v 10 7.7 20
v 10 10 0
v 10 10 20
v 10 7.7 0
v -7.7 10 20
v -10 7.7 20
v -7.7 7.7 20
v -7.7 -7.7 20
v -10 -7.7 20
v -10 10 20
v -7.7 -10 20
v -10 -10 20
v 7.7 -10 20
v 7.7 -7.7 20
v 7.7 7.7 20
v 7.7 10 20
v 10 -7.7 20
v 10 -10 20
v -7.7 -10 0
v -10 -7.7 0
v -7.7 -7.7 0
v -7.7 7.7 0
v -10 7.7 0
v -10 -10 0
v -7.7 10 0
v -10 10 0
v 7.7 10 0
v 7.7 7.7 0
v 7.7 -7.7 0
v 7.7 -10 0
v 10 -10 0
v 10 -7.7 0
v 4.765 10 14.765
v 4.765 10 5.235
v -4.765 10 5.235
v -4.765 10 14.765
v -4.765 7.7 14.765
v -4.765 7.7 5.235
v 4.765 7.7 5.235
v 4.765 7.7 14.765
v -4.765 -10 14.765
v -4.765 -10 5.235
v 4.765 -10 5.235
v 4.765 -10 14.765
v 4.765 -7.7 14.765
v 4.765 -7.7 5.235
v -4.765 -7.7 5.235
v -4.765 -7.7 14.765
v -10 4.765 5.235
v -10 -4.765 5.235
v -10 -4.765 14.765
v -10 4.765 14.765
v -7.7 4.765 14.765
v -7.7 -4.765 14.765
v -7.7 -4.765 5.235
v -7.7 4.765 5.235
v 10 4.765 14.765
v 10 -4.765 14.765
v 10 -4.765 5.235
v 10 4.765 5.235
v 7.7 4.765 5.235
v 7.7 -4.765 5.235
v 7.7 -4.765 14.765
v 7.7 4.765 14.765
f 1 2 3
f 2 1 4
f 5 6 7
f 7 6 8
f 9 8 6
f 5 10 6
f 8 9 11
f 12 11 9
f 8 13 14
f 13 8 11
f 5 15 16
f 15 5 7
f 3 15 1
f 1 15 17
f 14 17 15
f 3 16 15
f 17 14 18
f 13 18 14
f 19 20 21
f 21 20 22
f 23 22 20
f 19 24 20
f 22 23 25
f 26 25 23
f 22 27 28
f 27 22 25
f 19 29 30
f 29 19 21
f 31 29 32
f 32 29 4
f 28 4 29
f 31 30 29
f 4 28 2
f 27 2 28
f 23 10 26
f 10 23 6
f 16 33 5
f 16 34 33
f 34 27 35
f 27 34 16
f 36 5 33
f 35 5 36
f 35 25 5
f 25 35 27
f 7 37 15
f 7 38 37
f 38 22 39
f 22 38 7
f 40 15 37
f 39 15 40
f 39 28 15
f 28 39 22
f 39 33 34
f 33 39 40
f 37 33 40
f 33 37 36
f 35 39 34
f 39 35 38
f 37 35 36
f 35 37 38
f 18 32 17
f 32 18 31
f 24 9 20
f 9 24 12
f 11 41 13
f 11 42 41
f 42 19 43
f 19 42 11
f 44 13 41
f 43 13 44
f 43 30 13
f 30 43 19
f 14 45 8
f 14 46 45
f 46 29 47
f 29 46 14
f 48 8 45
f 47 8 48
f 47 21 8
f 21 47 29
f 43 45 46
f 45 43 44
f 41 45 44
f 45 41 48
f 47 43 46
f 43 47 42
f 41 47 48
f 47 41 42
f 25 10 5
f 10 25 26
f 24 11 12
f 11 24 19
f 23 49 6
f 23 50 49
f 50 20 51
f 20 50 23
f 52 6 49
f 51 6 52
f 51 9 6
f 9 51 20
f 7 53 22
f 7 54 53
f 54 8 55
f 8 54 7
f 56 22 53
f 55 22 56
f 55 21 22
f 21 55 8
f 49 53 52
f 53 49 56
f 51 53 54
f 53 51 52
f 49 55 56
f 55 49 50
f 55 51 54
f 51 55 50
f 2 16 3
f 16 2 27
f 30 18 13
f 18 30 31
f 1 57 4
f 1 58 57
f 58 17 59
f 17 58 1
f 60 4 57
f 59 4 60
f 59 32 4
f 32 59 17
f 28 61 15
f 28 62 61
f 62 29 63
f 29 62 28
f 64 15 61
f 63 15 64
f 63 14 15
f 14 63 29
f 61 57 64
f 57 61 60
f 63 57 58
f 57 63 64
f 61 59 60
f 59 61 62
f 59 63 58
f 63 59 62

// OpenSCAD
/* = test cage nut holder
 * parts: holder
 * units: mm
 *
 * * * * *
 *
 * This probably isn't complex enough to be covered by copyright but...
 *
 * Designed by Daniel Oaks <https://danieloaks.net>.
 *
 * To the extent possible under law, the person who associated CC0 with
 * this file and design has waived all copyright and related or
 * neighboring rights to this file and design.
 * You should have received a copy of the CC0 legalcode along with this
 * work.  If not, see <http://creativecommons.org/publicdomain/zero/1.0/>.
 *
 * * * * *
 *
 *  This can be used to test cutout sizes and wall
 * thicknesses, to see whether a given sizing works.
 *
 * * * * */

cube_size = 20; // mm
cutout_size = 9.53; // mm
wall_thickness = 2.3; // mm

module copy_mirror(vec=[0,0,0], offset=[0,0,0])
{
    children();
    translate(offset) mirror(vec) children();
}

module copy_rotate(vec=[0,0,0])
{
    children();
    rotate(vec) children();
}

copy_rotate([0,0,90]) copy_mirror([0,1,0]) translate([-cube_size / 2,cube_size/2 - wall_thickness,0]) {
    difference() {
        cube([cube_size,wall_thickness,cube_size]);
        translate([cube_size/2 - cutout_size/2,-1,cube_size/2 - cutout_size/2]) cube([cutout_size,wall_thickness+2,cutout_size]);
    }
 }
 
